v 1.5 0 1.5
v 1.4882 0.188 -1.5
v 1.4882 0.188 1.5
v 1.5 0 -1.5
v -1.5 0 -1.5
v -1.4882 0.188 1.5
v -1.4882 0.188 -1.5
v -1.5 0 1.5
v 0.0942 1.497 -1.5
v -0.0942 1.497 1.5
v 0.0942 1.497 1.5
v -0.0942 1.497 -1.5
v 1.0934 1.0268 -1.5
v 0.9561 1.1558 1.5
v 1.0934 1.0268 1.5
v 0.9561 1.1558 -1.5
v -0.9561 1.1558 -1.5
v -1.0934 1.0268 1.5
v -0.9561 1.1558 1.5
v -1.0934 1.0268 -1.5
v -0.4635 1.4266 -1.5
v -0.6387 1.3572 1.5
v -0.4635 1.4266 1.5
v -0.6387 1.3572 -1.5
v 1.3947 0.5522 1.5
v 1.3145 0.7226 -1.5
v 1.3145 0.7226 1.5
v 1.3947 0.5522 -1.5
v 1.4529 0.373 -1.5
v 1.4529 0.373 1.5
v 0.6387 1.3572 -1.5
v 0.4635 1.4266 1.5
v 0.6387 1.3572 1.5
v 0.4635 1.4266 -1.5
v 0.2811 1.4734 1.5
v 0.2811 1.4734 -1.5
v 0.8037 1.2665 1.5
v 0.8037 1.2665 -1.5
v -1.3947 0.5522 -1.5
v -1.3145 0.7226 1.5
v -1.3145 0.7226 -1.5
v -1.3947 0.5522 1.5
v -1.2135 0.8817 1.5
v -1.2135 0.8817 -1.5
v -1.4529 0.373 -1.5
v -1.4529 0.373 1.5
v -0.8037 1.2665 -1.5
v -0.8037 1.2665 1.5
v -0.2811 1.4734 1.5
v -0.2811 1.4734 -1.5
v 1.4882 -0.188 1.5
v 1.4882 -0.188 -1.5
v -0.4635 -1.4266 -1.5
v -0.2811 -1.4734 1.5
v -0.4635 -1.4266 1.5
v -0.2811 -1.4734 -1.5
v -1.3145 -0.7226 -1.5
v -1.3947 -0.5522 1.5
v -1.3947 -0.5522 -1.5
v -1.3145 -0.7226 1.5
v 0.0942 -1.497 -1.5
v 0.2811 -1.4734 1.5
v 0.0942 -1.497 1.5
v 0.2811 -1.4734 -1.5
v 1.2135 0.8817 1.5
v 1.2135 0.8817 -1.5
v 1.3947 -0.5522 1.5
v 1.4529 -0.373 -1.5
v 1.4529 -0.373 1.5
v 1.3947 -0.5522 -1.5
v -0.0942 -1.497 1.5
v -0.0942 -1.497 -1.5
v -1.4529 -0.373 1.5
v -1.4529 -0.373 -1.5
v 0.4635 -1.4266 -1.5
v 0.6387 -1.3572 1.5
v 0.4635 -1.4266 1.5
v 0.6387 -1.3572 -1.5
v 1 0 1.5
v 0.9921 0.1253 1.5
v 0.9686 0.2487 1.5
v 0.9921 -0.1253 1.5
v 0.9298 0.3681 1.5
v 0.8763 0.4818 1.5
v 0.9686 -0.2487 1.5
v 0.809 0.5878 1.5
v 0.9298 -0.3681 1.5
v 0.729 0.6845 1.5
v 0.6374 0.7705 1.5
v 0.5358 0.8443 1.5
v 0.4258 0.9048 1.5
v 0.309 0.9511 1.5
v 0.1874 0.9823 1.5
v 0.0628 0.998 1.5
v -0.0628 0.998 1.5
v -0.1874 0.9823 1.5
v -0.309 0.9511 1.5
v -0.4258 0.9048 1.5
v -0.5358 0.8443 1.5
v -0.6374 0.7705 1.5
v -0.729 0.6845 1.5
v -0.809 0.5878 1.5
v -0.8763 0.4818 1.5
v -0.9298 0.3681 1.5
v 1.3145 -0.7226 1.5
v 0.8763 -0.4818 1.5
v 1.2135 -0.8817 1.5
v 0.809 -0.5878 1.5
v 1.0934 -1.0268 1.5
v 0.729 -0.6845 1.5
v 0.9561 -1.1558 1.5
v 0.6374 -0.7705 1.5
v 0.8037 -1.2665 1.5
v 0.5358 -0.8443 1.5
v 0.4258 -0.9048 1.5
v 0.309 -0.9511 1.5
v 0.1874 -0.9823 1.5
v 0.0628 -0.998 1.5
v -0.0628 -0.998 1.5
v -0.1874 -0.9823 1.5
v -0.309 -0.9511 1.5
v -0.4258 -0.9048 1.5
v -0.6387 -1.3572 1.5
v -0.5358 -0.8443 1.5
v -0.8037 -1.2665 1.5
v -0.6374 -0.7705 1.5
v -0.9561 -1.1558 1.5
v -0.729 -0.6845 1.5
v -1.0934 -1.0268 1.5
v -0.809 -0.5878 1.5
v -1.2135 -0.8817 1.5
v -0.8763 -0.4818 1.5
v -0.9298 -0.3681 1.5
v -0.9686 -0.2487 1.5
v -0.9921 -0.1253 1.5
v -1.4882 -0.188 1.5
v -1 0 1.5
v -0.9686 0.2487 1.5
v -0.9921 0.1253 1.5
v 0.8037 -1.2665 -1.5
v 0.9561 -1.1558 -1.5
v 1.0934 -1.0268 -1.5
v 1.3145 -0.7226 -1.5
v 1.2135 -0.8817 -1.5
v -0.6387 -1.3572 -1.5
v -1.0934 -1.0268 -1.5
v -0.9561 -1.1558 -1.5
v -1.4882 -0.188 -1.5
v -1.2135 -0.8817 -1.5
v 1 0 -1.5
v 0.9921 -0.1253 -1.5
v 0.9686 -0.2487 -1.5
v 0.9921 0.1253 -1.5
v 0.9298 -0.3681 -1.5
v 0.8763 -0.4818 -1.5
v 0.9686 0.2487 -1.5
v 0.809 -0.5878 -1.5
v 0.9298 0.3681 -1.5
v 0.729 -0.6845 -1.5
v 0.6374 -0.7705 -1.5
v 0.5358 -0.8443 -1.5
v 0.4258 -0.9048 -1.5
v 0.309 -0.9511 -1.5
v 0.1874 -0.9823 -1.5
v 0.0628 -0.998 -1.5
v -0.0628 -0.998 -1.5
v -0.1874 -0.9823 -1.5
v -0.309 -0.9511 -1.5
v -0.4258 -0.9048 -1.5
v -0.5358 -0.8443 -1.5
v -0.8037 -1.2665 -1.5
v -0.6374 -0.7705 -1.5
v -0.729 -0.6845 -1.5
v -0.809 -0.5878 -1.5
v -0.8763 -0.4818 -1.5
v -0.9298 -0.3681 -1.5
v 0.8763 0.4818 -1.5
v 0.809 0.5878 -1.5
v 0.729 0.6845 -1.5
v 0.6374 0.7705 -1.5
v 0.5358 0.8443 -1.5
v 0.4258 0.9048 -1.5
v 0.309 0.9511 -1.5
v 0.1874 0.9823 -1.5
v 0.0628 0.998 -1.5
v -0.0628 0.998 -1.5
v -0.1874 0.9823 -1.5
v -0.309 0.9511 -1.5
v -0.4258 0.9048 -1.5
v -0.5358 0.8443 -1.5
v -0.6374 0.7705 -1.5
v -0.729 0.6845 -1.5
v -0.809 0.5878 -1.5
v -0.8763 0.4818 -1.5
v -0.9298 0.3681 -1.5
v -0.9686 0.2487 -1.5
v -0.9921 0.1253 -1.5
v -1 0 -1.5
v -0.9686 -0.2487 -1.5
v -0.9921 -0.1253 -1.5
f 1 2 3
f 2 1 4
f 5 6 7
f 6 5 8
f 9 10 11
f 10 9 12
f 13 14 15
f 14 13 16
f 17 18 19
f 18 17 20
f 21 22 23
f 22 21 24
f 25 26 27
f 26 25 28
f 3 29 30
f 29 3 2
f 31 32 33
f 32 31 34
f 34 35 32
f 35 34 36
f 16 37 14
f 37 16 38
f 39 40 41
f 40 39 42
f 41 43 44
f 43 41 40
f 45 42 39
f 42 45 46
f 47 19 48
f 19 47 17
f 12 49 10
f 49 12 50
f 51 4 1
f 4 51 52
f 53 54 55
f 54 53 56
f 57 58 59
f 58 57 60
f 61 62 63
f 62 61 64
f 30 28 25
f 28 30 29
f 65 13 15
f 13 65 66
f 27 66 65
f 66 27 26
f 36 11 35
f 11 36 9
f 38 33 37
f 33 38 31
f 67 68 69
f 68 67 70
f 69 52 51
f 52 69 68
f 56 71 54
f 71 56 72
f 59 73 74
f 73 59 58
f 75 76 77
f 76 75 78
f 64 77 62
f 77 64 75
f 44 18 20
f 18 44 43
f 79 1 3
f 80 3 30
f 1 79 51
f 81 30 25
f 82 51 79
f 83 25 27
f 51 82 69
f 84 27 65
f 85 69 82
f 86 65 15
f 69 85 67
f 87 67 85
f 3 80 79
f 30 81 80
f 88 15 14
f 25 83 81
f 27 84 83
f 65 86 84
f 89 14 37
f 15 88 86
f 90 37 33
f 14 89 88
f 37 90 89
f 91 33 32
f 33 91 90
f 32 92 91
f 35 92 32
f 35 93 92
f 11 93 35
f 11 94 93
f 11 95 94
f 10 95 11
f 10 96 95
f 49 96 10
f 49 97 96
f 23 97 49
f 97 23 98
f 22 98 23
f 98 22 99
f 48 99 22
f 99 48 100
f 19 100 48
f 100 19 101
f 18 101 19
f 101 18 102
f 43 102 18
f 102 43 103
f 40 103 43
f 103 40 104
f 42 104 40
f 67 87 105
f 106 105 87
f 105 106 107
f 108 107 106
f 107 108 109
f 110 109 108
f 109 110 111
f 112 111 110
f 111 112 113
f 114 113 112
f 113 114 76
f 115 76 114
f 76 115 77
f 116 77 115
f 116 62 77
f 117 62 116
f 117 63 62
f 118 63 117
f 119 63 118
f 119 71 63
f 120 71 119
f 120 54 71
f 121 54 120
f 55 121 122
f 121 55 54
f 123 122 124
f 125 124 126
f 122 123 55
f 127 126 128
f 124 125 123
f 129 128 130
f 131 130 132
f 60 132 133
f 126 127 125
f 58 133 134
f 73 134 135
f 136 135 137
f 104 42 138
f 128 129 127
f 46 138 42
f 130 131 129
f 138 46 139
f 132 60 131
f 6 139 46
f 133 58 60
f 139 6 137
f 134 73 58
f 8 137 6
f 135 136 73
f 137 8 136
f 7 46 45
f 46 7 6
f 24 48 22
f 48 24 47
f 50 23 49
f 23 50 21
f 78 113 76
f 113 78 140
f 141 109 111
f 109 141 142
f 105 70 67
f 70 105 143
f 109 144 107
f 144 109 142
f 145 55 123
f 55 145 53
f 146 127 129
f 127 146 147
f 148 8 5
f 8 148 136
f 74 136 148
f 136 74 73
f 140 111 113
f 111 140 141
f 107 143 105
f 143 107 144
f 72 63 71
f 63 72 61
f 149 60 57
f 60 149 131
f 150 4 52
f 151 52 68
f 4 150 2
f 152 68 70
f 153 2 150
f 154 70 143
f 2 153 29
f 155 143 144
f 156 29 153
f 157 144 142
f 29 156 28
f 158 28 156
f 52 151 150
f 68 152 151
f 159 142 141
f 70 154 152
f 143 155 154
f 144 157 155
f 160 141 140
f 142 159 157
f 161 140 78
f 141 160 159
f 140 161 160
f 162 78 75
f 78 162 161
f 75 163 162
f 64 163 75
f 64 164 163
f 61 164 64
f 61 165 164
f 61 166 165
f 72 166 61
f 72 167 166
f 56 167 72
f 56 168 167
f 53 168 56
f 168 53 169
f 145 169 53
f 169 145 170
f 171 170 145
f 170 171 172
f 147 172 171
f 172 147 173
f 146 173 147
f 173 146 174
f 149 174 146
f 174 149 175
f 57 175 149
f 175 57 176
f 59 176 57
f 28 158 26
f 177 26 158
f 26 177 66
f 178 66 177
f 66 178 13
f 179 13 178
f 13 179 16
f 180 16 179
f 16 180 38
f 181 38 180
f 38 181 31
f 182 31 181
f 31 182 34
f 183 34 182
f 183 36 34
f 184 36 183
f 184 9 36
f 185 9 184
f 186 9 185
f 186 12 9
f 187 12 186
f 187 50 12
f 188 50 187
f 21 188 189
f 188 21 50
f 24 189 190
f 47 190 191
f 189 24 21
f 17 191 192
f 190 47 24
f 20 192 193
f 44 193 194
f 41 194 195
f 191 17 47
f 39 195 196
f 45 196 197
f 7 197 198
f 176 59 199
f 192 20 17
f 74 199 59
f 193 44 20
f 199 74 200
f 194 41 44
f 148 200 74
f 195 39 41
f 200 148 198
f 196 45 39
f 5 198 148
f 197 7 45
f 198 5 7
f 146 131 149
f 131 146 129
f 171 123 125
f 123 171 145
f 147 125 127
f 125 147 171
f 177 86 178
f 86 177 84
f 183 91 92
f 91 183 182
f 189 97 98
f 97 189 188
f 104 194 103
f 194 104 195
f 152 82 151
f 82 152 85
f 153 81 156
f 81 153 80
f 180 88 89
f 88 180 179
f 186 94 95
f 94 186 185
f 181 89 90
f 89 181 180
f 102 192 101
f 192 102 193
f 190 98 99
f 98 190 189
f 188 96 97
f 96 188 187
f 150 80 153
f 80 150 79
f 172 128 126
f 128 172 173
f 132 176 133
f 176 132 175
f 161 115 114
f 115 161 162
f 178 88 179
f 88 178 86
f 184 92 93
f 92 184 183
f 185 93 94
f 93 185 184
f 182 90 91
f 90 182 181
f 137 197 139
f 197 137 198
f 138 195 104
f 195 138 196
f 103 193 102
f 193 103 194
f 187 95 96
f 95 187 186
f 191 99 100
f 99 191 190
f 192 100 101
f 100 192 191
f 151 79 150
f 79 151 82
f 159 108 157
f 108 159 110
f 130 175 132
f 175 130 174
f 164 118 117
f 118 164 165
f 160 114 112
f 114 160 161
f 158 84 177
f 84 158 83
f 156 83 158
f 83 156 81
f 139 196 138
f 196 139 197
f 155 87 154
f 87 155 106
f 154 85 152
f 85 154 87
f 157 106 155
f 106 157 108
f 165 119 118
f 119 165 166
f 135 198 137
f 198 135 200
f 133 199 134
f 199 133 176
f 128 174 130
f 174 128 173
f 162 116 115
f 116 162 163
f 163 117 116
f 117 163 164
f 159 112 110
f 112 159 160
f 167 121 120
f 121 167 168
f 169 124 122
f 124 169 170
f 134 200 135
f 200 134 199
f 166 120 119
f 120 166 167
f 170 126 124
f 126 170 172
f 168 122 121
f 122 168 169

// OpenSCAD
$fn = 50;


difference() {
	union() {
		translate(v = [0, 0, -1.5000000000]) {
			cylinder(h = 3, r = 1.5000000000);
		}
	}
	union() {
		translate(v = [0, 0, -100.0000000000]) {
			cylinder(h = 200, r = 1.0000000000);
		}
	}
}
